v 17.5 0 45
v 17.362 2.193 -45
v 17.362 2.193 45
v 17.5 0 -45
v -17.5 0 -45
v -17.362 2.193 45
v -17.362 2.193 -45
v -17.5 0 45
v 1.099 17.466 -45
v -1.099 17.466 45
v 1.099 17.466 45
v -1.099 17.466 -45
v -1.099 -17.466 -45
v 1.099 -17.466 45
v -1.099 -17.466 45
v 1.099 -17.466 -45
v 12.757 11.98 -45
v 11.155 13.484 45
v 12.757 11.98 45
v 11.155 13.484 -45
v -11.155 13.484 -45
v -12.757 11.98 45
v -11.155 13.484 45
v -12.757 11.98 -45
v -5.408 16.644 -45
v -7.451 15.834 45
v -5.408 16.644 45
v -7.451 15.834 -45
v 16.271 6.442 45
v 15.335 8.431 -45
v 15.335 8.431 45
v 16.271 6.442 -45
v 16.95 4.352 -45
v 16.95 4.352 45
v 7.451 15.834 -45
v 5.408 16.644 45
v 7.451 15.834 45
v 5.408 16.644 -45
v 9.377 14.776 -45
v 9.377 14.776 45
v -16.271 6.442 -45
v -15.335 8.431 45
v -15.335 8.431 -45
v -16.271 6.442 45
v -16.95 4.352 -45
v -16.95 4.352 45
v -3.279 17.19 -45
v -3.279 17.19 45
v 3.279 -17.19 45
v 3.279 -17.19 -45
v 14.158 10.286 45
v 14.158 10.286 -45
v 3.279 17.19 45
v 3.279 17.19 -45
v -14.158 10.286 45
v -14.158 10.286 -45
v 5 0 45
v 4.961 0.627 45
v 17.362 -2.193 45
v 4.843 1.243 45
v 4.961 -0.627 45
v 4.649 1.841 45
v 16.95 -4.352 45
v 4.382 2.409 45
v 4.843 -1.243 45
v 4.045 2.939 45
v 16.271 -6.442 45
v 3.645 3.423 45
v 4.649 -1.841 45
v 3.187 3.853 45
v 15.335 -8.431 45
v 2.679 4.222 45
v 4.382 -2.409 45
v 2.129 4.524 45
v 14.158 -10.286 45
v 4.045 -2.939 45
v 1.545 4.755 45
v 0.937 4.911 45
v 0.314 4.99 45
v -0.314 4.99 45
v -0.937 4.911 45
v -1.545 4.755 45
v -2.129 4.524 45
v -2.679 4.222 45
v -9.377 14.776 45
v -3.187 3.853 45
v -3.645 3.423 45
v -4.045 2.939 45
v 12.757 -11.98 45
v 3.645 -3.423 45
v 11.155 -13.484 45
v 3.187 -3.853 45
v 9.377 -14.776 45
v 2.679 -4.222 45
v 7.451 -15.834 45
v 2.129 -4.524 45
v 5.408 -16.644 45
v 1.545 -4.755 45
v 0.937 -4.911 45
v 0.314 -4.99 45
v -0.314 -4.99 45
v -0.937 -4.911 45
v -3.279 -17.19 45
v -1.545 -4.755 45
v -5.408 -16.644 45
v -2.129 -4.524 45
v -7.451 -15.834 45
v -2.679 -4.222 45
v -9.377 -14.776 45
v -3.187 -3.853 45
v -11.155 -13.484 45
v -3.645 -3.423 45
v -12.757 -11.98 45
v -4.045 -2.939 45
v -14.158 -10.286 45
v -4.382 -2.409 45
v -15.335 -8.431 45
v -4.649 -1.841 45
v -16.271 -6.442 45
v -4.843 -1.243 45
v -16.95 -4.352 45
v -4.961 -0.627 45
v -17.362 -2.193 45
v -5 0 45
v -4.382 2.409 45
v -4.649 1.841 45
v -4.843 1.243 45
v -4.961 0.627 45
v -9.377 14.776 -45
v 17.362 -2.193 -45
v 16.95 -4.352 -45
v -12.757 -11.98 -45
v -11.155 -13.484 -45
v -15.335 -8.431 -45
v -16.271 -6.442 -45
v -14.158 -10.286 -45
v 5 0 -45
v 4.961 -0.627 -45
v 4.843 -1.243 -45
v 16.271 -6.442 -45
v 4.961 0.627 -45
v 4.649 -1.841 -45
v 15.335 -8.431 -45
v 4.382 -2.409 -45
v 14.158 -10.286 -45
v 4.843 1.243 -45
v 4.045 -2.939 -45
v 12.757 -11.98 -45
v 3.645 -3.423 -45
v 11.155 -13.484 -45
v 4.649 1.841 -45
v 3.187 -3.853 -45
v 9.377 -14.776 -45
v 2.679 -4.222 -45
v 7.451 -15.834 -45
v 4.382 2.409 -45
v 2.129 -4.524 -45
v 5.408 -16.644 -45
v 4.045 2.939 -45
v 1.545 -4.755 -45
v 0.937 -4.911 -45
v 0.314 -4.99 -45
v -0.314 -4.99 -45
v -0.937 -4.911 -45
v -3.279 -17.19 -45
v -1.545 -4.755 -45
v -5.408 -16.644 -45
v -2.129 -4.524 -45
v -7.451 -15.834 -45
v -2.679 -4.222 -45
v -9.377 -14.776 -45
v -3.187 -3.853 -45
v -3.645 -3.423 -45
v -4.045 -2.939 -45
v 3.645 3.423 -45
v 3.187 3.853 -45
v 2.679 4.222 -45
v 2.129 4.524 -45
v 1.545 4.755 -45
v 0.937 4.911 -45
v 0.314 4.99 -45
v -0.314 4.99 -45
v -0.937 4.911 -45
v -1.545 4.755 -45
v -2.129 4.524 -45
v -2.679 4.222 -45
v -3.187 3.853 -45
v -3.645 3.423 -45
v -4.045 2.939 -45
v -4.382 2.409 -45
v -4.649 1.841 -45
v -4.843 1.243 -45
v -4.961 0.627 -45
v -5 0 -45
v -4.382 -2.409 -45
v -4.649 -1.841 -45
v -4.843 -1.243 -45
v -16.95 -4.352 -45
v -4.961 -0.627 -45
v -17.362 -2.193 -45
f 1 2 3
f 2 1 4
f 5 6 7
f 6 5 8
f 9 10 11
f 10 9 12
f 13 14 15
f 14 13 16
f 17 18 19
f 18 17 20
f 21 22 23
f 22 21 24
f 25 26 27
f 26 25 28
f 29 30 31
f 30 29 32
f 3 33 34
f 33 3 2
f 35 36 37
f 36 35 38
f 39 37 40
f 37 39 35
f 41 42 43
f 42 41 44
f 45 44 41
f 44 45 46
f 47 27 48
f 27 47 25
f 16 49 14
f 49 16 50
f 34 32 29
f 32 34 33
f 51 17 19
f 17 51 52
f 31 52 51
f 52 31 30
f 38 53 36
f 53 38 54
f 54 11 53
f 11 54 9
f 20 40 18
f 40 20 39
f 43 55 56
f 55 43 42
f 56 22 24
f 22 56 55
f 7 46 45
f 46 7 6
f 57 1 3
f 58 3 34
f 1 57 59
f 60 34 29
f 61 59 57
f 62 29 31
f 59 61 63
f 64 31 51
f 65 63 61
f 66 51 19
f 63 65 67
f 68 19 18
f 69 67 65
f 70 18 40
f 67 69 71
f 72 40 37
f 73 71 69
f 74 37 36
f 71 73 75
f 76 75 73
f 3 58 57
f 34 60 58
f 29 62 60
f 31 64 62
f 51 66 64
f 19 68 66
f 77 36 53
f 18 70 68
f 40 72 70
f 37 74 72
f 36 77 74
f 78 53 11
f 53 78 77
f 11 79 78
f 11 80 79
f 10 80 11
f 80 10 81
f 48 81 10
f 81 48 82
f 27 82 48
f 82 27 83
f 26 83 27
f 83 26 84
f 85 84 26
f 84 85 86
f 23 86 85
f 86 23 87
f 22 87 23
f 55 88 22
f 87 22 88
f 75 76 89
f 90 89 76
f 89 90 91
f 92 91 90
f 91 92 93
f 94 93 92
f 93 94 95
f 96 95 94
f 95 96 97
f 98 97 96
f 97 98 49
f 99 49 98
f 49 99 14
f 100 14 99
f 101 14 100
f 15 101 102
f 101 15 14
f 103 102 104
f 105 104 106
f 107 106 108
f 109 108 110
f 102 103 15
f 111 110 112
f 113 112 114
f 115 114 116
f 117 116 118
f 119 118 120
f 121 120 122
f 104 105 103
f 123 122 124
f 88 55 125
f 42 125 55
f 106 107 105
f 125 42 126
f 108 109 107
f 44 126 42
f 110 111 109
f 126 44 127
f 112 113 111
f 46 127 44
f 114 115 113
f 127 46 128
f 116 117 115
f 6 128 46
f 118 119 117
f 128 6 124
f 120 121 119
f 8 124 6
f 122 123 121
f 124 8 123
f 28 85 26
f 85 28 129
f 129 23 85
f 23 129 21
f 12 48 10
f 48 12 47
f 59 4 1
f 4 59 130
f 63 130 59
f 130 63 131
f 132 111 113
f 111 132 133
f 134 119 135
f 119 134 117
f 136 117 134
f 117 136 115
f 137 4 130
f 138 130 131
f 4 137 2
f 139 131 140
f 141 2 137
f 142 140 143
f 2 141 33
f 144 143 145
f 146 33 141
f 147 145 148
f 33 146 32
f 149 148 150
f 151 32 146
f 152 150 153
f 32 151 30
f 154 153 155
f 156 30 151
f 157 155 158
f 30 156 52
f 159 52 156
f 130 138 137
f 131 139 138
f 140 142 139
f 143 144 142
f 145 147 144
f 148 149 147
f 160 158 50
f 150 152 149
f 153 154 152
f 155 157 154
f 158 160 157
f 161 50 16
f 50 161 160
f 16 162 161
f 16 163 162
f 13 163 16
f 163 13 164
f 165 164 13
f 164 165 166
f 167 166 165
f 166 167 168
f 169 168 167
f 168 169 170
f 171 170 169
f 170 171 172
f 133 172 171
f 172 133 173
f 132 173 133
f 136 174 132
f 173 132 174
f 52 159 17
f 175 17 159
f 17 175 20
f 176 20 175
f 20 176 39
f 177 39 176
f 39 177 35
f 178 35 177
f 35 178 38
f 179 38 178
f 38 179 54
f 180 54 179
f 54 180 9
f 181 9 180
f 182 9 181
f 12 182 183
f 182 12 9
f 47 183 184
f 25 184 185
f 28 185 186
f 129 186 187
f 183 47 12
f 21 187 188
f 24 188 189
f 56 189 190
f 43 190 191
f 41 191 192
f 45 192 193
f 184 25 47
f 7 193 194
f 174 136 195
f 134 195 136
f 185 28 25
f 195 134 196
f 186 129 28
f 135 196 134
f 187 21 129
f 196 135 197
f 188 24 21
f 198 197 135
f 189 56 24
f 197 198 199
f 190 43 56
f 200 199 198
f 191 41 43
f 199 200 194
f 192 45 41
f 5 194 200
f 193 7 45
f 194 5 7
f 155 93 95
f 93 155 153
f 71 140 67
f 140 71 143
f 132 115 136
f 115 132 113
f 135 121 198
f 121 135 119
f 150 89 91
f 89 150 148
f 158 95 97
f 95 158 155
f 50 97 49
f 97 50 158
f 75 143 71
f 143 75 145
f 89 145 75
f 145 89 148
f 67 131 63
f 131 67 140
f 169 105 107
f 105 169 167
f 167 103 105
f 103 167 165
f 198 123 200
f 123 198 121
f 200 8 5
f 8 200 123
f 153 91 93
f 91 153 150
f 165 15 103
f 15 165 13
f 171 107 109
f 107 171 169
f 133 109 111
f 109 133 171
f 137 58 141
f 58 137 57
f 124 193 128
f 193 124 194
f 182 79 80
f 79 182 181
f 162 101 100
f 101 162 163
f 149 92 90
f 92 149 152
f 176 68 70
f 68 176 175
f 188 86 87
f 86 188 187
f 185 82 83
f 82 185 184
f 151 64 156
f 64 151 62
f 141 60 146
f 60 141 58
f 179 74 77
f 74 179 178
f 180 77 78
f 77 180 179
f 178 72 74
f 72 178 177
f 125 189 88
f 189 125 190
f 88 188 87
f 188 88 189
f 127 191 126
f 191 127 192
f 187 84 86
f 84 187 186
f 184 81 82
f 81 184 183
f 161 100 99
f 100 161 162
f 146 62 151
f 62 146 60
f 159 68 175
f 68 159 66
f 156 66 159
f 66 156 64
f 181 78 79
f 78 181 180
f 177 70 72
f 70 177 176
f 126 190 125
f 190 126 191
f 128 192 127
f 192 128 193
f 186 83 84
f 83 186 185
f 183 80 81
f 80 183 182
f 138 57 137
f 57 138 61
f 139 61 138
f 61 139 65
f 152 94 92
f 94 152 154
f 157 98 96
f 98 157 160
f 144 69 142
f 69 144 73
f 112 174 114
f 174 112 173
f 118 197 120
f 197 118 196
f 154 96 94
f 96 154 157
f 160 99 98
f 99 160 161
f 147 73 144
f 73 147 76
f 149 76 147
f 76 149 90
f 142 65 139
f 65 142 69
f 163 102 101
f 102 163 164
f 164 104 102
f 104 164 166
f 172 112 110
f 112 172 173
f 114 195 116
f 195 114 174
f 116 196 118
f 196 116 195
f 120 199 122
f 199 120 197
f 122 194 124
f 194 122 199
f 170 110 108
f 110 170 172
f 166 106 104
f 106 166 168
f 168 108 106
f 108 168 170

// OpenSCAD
$fn = 50;


difference() {
	union() {
		translate(v = [0, 0, -45.0000000000]) {
			cylinder(h = 90, r = 17.5000000000);
		}
	}
	union() {
		translate(v = [0, 0, -100.0000000000]) {
			cylinder(h = 200, r = 5);
		}
	}
}
